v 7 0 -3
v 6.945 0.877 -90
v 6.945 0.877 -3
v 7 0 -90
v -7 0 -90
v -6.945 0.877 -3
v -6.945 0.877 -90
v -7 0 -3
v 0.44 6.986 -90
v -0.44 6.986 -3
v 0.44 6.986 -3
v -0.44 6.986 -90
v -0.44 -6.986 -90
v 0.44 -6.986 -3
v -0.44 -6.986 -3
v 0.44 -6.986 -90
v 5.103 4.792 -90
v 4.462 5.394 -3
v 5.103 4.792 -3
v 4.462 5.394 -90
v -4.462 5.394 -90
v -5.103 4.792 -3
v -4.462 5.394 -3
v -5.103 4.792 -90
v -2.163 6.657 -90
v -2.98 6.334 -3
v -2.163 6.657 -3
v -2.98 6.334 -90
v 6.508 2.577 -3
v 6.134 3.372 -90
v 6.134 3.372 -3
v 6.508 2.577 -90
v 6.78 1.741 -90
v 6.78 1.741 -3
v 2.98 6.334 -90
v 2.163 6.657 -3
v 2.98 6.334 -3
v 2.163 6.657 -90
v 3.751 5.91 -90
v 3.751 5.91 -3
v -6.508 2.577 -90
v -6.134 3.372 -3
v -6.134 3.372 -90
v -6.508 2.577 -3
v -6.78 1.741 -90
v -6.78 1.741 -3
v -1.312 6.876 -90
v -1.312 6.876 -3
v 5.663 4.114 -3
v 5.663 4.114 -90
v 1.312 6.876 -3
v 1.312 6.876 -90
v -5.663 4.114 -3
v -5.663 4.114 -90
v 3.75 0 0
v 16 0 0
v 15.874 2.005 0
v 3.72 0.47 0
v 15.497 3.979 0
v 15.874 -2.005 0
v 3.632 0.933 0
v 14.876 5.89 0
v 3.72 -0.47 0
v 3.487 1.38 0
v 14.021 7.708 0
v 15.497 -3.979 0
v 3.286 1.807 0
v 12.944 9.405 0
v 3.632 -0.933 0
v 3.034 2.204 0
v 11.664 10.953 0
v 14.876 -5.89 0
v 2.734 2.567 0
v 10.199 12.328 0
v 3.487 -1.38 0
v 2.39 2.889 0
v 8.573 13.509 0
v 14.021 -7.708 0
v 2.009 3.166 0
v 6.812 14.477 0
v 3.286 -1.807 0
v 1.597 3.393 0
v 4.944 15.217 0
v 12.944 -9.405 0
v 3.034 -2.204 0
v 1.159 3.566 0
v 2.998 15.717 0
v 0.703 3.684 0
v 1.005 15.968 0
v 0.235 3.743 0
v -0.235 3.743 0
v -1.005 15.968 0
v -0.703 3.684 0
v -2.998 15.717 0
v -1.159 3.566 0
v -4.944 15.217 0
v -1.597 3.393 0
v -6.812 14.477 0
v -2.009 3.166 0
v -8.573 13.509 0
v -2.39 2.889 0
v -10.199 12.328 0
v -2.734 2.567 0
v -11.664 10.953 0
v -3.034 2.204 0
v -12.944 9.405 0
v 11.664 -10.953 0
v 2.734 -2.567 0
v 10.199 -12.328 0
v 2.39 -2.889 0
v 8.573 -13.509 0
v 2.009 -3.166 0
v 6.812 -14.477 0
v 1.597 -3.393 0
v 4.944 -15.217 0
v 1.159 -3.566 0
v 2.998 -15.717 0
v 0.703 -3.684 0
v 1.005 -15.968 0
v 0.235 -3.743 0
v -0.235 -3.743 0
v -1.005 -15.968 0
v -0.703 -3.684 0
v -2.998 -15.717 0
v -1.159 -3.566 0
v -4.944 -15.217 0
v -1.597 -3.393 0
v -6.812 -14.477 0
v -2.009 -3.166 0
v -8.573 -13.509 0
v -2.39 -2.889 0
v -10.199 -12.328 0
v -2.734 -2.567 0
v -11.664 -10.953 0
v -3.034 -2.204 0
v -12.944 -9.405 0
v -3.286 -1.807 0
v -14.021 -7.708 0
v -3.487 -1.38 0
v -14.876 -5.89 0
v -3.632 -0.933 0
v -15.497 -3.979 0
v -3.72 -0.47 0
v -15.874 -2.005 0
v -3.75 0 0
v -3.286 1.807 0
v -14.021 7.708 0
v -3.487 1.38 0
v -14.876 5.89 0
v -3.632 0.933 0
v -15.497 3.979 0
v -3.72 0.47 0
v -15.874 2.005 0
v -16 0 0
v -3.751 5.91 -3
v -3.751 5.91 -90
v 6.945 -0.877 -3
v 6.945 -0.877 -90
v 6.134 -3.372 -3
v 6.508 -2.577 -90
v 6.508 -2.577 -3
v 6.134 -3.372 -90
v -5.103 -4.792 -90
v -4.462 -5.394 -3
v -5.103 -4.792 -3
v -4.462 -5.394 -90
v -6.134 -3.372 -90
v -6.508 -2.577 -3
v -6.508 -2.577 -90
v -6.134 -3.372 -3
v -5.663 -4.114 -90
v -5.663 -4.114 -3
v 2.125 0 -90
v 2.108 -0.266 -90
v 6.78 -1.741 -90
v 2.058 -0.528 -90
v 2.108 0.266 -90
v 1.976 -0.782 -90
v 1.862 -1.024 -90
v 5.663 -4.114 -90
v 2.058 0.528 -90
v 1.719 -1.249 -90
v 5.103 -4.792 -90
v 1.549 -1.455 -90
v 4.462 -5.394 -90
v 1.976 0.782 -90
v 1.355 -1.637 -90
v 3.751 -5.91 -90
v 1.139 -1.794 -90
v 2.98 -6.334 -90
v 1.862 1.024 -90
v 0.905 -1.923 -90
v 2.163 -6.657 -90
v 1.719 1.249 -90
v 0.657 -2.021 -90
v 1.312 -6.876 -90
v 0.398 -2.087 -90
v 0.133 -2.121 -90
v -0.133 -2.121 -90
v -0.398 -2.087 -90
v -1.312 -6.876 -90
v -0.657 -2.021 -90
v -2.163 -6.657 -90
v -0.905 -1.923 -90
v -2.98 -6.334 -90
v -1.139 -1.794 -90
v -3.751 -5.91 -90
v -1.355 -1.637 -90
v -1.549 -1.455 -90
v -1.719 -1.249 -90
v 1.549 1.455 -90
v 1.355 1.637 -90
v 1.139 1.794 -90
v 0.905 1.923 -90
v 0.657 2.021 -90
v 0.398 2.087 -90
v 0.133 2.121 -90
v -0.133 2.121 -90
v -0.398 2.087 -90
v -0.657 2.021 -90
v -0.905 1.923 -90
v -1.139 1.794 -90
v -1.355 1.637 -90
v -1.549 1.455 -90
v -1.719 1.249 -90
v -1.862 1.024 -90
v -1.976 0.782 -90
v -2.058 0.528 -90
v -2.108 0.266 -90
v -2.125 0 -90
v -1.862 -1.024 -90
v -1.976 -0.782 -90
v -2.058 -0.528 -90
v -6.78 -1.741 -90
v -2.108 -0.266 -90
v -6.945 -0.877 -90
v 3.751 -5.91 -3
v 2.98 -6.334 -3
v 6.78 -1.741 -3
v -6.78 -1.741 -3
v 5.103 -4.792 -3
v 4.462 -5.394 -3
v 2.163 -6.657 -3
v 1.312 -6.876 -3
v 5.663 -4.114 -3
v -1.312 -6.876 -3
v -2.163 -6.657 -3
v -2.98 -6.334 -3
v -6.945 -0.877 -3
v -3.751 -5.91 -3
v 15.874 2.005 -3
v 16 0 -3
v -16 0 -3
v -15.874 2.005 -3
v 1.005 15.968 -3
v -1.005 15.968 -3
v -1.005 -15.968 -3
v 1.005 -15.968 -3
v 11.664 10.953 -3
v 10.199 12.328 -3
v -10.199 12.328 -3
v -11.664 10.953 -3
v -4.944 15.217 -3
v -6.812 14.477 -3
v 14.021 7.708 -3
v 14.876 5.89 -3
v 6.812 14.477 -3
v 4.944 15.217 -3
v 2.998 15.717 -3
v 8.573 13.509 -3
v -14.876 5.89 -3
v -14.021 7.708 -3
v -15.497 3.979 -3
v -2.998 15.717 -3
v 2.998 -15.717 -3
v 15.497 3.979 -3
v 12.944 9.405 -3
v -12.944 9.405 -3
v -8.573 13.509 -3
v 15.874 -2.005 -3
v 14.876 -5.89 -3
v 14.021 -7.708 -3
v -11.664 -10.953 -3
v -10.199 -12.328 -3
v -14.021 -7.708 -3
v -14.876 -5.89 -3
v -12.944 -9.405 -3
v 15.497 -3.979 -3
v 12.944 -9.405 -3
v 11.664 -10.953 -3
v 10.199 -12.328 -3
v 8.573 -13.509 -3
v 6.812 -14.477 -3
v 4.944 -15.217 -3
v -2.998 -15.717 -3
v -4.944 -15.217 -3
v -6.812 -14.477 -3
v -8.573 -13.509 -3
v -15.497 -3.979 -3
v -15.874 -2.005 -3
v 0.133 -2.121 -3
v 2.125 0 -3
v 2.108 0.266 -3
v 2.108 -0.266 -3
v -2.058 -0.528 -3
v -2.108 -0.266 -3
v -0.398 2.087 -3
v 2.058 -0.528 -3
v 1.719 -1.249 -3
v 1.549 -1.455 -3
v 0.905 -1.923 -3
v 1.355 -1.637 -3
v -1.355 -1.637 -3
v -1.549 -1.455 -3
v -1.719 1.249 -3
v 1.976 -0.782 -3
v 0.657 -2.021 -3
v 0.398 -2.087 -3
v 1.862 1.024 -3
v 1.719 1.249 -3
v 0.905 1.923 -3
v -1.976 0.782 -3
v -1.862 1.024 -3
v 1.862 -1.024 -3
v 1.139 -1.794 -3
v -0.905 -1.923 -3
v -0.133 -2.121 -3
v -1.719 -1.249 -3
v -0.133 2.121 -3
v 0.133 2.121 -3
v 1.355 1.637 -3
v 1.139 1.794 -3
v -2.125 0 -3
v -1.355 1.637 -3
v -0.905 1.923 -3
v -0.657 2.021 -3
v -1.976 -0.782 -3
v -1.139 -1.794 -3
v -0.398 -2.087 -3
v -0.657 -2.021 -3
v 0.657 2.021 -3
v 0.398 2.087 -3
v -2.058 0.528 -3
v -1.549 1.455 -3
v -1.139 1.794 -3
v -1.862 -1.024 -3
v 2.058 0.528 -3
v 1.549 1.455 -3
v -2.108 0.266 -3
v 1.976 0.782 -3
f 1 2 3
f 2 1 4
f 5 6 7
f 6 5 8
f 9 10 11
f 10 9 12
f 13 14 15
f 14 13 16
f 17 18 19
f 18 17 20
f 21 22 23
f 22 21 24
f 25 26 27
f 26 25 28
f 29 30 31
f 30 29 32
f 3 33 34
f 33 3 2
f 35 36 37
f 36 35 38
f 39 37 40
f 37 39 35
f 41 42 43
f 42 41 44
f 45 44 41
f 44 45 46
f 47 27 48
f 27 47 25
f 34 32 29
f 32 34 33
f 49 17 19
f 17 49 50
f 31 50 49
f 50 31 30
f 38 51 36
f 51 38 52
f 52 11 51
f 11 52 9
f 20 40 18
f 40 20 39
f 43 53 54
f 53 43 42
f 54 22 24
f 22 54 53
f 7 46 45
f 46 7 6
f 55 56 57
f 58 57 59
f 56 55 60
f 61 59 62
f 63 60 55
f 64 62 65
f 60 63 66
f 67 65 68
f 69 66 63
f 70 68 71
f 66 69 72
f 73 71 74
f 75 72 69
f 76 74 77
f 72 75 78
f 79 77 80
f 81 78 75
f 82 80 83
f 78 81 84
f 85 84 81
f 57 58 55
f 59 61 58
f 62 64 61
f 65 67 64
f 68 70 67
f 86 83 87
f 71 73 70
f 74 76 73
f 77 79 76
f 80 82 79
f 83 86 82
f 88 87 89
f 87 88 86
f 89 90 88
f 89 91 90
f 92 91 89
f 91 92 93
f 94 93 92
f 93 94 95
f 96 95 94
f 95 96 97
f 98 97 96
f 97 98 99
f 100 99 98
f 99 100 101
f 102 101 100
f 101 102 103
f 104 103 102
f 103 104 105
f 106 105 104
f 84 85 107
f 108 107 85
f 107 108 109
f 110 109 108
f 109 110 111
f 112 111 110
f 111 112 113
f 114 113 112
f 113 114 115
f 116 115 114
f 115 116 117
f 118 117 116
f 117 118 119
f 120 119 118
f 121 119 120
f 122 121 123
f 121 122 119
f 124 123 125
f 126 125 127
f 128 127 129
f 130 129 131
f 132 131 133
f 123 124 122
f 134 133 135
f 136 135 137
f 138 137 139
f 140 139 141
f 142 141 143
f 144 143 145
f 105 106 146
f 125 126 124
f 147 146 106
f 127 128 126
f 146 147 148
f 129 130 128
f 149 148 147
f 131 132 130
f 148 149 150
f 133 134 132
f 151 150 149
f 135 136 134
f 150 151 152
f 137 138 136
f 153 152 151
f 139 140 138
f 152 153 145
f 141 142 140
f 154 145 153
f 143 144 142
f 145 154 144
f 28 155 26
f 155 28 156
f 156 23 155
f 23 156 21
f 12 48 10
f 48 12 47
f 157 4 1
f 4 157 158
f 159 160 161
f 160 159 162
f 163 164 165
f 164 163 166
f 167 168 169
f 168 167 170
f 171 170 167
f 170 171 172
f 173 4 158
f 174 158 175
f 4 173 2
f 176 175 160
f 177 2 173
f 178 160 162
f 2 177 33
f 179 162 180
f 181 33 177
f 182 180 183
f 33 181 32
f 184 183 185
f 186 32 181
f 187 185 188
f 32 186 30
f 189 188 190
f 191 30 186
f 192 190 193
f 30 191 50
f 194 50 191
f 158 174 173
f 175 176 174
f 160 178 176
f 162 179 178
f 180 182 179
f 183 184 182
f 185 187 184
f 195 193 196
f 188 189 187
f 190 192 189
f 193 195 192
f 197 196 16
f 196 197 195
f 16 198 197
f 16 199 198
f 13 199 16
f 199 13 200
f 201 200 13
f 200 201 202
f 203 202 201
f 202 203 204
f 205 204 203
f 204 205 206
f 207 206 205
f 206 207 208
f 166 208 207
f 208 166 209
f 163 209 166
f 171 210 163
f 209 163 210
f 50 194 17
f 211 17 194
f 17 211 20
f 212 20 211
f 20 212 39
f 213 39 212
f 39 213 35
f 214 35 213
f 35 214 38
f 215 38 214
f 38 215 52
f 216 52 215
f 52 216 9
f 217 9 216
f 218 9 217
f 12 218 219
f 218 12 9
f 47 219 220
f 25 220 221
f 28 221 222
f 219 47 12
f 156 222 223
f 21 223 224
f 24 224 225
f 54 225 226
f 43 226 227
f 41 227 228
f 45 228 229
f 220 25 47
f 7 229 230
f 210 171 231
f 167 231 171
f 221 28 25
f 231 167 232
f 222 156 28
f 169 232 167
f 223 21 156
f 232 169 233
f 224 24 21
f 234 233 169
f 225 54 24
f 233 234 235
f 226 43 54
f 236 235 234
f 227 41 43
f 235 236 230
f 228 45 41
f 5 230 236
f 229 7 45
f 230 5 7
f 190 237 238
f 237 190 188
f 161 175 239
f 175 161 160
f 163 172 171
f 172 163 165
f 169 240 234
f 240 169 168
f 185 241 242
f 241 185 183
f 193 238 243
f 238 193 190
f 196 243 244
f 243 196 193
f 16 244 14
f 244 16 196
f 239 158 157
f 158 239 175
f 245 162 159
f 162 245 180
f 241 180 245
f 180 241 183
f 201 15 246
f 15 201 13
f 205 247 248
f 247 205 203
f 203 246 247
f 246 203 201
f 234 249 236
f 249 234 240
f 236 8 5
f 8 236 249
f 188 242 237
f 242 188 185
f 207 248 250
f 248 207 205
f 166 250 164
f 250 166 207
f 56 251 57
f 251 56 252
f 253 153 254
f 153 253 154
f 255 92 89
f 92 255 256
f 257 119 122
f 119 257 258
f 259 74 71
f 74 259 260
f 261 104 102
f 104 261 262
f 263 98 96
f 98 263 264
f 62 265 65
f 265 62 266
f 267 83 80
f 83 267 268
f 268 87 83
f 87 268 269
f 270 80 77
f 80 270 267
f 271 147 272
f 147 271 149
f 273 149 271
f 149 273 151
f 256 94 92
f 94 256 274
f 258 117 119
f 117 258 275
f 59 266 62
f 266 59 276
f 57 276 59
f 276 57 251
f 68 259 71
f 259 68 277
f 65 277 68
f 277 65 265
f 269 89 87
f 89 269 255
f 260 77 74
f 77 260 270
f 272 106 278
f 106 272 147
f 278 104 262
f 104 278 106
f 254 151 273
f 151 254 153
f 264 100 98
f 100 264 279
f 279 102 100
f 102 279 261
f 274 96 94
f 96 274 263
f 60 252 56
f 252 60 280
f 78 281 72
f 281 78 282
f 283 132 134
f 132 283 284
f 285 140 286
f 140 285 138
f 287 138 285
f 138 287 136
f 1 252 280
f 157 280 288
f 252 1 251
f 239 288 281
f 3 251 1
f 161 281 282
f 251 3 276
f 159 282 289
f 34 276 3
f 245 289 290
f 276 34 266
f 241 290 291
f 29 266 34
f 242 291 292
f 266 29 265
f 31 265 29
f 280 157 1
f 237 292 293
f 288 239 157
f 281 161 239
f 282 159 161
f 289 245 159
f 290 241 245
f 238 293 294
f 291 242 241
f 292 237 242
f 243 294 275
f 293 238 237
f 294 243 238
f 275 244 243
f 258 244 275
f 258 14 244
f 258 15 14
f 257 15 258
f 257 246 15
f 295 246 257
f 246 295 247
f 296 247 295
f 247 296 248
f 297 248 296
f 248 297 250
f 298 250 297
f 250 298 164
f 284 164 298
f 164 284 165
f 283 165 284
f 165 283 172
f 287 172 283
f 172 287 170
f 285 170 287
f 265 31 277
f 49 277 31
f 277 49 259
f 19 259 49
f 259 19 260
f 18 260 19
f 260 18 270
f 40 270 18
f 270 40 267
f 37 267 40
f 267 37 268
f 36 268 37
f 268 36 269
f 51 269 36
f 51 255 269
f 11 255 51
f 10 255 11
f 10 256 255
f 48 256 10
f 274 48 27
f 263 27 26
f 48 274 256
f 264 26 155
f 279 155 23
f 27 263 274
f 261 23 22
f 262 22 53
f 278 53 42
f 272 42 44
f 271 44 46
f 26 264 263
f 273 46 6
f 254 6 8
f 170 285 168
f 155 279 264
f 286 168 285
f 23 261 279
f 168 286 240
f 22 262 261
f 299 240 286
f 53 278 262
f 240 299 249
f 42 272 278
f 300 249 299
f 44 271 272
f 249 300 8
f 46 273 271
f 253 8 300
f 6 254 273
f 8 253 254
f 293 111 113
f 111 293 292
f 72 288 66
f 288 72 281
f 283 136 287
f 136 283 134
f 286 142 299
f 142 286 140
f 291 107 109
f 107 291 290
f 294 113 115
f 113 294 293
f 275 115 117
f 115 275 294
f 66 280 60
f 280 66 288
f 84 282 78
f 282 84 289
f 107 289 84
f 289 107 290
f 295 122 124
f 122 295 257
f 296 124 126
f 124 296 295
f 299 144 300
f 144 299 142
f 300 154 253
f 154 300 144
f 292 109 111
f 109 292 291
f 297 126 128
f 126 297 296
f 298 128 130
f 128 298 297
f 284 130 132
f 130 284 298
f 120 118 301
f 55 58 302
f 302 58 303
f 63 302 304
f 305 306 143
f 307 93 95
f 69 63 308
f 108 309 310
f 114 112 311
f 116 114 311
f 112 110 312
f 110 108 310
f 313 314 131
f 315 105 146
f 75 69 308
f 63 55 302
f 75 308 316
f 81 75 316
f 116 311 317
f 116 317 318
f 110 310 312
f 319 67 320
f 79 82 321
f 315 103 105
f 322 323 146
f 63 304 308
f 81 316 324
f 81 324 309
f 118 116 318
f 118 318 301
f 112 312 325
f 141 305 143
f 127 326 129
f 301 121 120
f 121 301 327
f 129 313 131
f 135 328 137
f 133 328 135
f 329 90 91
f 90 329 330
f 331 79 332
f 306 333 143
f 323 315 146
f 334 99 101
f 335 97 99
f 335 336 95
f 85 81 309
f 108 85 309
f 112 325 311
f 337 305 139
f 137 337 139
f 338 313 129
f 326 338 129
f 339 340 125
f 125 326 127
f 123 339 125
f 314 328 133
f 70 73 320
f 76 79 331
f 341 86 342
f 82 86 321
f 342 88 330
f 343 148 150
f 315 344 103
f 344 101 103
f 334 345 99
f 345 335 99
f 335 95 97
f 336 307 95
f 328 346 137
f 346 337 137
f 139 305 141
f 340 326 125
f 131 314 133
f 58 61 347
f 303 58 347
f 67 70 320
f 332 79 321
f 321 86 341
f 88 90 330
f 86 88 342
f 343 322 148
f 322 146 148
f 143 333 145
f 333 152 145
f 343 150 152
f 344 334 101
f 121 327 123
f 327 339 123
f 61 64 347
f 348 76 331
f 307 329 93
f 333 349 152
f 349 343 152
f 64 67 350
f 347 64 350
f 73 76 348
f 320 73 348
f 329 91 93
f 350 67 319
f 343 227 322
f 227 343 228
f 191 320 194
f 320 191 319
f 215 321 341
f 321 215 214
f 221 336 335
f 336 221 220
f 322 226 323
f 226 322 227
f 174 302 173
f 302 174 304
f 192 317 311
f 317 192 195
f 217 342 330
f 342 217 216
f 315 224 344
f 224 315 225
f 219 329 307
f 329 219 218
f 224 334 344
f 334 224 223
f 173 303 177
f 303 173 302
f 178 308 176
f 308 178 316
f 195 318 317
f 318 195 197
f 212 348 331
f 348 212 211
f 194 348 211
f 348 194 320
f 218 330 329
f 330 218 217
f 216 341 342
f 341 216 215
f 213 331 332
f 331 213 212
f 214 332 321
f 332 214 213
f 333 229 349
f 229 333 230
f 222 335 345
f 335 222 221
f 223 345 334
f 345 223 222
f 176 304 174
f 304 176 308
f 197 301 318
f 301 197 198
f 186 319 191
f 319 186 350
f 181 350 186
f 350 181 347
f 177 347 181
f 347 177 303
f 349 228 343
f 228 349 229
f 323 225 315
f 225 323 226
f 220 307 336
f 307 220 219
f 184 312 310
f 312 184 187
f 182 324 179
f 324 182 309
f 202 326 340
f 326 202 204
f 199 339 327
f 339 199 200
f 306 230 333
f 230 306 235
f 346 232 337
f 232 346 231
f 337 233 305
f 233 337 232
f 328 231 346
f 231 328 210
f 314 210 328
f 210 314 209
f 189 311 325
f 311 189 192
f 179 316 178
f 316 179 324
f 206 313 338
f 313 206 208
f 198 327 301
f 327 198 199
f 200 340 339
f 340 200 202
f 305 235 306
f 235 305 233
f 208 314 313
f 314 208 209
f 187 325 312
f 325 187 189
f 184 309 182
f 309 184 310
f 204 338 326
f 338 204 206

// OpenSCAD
$fn = 50;


difference() {
	union() {
		translate(v = [0, 0, -90.0000000000]) {
			cylinder(h = 90, r = 7.0000000000);
		}
		translate(v = [0, 0, -3.0000000000]) {
			cylinder(h = 3, r = 16.0000000000);
		}
	}
	union() {
		translate(v = [0, 0, 0]) {
			rotate(a = [0, 0, 0]) {
				difference() {
					union() {
						#translate(v = [0, 0, -90.0000000000]) {
							cylinder(h = 90, r = 2.0000000000);
						}
						#translate(v = [0, 0, -3]) {
							cylinder(h = 3, r1 = 2.1250000000, r2 = 3.7500000000);
						}
						#translate(v = [0, 0, -90.0000000000]) {
							cylinder(h = 90, r = 2.1250000000);
						}
						#translate(v = [0, 0, -90.0000000000]) {
							cylinder(h = 90, r = 2.0000000000);
						}
					}
					union();
				}
			}
		}
	}
}
